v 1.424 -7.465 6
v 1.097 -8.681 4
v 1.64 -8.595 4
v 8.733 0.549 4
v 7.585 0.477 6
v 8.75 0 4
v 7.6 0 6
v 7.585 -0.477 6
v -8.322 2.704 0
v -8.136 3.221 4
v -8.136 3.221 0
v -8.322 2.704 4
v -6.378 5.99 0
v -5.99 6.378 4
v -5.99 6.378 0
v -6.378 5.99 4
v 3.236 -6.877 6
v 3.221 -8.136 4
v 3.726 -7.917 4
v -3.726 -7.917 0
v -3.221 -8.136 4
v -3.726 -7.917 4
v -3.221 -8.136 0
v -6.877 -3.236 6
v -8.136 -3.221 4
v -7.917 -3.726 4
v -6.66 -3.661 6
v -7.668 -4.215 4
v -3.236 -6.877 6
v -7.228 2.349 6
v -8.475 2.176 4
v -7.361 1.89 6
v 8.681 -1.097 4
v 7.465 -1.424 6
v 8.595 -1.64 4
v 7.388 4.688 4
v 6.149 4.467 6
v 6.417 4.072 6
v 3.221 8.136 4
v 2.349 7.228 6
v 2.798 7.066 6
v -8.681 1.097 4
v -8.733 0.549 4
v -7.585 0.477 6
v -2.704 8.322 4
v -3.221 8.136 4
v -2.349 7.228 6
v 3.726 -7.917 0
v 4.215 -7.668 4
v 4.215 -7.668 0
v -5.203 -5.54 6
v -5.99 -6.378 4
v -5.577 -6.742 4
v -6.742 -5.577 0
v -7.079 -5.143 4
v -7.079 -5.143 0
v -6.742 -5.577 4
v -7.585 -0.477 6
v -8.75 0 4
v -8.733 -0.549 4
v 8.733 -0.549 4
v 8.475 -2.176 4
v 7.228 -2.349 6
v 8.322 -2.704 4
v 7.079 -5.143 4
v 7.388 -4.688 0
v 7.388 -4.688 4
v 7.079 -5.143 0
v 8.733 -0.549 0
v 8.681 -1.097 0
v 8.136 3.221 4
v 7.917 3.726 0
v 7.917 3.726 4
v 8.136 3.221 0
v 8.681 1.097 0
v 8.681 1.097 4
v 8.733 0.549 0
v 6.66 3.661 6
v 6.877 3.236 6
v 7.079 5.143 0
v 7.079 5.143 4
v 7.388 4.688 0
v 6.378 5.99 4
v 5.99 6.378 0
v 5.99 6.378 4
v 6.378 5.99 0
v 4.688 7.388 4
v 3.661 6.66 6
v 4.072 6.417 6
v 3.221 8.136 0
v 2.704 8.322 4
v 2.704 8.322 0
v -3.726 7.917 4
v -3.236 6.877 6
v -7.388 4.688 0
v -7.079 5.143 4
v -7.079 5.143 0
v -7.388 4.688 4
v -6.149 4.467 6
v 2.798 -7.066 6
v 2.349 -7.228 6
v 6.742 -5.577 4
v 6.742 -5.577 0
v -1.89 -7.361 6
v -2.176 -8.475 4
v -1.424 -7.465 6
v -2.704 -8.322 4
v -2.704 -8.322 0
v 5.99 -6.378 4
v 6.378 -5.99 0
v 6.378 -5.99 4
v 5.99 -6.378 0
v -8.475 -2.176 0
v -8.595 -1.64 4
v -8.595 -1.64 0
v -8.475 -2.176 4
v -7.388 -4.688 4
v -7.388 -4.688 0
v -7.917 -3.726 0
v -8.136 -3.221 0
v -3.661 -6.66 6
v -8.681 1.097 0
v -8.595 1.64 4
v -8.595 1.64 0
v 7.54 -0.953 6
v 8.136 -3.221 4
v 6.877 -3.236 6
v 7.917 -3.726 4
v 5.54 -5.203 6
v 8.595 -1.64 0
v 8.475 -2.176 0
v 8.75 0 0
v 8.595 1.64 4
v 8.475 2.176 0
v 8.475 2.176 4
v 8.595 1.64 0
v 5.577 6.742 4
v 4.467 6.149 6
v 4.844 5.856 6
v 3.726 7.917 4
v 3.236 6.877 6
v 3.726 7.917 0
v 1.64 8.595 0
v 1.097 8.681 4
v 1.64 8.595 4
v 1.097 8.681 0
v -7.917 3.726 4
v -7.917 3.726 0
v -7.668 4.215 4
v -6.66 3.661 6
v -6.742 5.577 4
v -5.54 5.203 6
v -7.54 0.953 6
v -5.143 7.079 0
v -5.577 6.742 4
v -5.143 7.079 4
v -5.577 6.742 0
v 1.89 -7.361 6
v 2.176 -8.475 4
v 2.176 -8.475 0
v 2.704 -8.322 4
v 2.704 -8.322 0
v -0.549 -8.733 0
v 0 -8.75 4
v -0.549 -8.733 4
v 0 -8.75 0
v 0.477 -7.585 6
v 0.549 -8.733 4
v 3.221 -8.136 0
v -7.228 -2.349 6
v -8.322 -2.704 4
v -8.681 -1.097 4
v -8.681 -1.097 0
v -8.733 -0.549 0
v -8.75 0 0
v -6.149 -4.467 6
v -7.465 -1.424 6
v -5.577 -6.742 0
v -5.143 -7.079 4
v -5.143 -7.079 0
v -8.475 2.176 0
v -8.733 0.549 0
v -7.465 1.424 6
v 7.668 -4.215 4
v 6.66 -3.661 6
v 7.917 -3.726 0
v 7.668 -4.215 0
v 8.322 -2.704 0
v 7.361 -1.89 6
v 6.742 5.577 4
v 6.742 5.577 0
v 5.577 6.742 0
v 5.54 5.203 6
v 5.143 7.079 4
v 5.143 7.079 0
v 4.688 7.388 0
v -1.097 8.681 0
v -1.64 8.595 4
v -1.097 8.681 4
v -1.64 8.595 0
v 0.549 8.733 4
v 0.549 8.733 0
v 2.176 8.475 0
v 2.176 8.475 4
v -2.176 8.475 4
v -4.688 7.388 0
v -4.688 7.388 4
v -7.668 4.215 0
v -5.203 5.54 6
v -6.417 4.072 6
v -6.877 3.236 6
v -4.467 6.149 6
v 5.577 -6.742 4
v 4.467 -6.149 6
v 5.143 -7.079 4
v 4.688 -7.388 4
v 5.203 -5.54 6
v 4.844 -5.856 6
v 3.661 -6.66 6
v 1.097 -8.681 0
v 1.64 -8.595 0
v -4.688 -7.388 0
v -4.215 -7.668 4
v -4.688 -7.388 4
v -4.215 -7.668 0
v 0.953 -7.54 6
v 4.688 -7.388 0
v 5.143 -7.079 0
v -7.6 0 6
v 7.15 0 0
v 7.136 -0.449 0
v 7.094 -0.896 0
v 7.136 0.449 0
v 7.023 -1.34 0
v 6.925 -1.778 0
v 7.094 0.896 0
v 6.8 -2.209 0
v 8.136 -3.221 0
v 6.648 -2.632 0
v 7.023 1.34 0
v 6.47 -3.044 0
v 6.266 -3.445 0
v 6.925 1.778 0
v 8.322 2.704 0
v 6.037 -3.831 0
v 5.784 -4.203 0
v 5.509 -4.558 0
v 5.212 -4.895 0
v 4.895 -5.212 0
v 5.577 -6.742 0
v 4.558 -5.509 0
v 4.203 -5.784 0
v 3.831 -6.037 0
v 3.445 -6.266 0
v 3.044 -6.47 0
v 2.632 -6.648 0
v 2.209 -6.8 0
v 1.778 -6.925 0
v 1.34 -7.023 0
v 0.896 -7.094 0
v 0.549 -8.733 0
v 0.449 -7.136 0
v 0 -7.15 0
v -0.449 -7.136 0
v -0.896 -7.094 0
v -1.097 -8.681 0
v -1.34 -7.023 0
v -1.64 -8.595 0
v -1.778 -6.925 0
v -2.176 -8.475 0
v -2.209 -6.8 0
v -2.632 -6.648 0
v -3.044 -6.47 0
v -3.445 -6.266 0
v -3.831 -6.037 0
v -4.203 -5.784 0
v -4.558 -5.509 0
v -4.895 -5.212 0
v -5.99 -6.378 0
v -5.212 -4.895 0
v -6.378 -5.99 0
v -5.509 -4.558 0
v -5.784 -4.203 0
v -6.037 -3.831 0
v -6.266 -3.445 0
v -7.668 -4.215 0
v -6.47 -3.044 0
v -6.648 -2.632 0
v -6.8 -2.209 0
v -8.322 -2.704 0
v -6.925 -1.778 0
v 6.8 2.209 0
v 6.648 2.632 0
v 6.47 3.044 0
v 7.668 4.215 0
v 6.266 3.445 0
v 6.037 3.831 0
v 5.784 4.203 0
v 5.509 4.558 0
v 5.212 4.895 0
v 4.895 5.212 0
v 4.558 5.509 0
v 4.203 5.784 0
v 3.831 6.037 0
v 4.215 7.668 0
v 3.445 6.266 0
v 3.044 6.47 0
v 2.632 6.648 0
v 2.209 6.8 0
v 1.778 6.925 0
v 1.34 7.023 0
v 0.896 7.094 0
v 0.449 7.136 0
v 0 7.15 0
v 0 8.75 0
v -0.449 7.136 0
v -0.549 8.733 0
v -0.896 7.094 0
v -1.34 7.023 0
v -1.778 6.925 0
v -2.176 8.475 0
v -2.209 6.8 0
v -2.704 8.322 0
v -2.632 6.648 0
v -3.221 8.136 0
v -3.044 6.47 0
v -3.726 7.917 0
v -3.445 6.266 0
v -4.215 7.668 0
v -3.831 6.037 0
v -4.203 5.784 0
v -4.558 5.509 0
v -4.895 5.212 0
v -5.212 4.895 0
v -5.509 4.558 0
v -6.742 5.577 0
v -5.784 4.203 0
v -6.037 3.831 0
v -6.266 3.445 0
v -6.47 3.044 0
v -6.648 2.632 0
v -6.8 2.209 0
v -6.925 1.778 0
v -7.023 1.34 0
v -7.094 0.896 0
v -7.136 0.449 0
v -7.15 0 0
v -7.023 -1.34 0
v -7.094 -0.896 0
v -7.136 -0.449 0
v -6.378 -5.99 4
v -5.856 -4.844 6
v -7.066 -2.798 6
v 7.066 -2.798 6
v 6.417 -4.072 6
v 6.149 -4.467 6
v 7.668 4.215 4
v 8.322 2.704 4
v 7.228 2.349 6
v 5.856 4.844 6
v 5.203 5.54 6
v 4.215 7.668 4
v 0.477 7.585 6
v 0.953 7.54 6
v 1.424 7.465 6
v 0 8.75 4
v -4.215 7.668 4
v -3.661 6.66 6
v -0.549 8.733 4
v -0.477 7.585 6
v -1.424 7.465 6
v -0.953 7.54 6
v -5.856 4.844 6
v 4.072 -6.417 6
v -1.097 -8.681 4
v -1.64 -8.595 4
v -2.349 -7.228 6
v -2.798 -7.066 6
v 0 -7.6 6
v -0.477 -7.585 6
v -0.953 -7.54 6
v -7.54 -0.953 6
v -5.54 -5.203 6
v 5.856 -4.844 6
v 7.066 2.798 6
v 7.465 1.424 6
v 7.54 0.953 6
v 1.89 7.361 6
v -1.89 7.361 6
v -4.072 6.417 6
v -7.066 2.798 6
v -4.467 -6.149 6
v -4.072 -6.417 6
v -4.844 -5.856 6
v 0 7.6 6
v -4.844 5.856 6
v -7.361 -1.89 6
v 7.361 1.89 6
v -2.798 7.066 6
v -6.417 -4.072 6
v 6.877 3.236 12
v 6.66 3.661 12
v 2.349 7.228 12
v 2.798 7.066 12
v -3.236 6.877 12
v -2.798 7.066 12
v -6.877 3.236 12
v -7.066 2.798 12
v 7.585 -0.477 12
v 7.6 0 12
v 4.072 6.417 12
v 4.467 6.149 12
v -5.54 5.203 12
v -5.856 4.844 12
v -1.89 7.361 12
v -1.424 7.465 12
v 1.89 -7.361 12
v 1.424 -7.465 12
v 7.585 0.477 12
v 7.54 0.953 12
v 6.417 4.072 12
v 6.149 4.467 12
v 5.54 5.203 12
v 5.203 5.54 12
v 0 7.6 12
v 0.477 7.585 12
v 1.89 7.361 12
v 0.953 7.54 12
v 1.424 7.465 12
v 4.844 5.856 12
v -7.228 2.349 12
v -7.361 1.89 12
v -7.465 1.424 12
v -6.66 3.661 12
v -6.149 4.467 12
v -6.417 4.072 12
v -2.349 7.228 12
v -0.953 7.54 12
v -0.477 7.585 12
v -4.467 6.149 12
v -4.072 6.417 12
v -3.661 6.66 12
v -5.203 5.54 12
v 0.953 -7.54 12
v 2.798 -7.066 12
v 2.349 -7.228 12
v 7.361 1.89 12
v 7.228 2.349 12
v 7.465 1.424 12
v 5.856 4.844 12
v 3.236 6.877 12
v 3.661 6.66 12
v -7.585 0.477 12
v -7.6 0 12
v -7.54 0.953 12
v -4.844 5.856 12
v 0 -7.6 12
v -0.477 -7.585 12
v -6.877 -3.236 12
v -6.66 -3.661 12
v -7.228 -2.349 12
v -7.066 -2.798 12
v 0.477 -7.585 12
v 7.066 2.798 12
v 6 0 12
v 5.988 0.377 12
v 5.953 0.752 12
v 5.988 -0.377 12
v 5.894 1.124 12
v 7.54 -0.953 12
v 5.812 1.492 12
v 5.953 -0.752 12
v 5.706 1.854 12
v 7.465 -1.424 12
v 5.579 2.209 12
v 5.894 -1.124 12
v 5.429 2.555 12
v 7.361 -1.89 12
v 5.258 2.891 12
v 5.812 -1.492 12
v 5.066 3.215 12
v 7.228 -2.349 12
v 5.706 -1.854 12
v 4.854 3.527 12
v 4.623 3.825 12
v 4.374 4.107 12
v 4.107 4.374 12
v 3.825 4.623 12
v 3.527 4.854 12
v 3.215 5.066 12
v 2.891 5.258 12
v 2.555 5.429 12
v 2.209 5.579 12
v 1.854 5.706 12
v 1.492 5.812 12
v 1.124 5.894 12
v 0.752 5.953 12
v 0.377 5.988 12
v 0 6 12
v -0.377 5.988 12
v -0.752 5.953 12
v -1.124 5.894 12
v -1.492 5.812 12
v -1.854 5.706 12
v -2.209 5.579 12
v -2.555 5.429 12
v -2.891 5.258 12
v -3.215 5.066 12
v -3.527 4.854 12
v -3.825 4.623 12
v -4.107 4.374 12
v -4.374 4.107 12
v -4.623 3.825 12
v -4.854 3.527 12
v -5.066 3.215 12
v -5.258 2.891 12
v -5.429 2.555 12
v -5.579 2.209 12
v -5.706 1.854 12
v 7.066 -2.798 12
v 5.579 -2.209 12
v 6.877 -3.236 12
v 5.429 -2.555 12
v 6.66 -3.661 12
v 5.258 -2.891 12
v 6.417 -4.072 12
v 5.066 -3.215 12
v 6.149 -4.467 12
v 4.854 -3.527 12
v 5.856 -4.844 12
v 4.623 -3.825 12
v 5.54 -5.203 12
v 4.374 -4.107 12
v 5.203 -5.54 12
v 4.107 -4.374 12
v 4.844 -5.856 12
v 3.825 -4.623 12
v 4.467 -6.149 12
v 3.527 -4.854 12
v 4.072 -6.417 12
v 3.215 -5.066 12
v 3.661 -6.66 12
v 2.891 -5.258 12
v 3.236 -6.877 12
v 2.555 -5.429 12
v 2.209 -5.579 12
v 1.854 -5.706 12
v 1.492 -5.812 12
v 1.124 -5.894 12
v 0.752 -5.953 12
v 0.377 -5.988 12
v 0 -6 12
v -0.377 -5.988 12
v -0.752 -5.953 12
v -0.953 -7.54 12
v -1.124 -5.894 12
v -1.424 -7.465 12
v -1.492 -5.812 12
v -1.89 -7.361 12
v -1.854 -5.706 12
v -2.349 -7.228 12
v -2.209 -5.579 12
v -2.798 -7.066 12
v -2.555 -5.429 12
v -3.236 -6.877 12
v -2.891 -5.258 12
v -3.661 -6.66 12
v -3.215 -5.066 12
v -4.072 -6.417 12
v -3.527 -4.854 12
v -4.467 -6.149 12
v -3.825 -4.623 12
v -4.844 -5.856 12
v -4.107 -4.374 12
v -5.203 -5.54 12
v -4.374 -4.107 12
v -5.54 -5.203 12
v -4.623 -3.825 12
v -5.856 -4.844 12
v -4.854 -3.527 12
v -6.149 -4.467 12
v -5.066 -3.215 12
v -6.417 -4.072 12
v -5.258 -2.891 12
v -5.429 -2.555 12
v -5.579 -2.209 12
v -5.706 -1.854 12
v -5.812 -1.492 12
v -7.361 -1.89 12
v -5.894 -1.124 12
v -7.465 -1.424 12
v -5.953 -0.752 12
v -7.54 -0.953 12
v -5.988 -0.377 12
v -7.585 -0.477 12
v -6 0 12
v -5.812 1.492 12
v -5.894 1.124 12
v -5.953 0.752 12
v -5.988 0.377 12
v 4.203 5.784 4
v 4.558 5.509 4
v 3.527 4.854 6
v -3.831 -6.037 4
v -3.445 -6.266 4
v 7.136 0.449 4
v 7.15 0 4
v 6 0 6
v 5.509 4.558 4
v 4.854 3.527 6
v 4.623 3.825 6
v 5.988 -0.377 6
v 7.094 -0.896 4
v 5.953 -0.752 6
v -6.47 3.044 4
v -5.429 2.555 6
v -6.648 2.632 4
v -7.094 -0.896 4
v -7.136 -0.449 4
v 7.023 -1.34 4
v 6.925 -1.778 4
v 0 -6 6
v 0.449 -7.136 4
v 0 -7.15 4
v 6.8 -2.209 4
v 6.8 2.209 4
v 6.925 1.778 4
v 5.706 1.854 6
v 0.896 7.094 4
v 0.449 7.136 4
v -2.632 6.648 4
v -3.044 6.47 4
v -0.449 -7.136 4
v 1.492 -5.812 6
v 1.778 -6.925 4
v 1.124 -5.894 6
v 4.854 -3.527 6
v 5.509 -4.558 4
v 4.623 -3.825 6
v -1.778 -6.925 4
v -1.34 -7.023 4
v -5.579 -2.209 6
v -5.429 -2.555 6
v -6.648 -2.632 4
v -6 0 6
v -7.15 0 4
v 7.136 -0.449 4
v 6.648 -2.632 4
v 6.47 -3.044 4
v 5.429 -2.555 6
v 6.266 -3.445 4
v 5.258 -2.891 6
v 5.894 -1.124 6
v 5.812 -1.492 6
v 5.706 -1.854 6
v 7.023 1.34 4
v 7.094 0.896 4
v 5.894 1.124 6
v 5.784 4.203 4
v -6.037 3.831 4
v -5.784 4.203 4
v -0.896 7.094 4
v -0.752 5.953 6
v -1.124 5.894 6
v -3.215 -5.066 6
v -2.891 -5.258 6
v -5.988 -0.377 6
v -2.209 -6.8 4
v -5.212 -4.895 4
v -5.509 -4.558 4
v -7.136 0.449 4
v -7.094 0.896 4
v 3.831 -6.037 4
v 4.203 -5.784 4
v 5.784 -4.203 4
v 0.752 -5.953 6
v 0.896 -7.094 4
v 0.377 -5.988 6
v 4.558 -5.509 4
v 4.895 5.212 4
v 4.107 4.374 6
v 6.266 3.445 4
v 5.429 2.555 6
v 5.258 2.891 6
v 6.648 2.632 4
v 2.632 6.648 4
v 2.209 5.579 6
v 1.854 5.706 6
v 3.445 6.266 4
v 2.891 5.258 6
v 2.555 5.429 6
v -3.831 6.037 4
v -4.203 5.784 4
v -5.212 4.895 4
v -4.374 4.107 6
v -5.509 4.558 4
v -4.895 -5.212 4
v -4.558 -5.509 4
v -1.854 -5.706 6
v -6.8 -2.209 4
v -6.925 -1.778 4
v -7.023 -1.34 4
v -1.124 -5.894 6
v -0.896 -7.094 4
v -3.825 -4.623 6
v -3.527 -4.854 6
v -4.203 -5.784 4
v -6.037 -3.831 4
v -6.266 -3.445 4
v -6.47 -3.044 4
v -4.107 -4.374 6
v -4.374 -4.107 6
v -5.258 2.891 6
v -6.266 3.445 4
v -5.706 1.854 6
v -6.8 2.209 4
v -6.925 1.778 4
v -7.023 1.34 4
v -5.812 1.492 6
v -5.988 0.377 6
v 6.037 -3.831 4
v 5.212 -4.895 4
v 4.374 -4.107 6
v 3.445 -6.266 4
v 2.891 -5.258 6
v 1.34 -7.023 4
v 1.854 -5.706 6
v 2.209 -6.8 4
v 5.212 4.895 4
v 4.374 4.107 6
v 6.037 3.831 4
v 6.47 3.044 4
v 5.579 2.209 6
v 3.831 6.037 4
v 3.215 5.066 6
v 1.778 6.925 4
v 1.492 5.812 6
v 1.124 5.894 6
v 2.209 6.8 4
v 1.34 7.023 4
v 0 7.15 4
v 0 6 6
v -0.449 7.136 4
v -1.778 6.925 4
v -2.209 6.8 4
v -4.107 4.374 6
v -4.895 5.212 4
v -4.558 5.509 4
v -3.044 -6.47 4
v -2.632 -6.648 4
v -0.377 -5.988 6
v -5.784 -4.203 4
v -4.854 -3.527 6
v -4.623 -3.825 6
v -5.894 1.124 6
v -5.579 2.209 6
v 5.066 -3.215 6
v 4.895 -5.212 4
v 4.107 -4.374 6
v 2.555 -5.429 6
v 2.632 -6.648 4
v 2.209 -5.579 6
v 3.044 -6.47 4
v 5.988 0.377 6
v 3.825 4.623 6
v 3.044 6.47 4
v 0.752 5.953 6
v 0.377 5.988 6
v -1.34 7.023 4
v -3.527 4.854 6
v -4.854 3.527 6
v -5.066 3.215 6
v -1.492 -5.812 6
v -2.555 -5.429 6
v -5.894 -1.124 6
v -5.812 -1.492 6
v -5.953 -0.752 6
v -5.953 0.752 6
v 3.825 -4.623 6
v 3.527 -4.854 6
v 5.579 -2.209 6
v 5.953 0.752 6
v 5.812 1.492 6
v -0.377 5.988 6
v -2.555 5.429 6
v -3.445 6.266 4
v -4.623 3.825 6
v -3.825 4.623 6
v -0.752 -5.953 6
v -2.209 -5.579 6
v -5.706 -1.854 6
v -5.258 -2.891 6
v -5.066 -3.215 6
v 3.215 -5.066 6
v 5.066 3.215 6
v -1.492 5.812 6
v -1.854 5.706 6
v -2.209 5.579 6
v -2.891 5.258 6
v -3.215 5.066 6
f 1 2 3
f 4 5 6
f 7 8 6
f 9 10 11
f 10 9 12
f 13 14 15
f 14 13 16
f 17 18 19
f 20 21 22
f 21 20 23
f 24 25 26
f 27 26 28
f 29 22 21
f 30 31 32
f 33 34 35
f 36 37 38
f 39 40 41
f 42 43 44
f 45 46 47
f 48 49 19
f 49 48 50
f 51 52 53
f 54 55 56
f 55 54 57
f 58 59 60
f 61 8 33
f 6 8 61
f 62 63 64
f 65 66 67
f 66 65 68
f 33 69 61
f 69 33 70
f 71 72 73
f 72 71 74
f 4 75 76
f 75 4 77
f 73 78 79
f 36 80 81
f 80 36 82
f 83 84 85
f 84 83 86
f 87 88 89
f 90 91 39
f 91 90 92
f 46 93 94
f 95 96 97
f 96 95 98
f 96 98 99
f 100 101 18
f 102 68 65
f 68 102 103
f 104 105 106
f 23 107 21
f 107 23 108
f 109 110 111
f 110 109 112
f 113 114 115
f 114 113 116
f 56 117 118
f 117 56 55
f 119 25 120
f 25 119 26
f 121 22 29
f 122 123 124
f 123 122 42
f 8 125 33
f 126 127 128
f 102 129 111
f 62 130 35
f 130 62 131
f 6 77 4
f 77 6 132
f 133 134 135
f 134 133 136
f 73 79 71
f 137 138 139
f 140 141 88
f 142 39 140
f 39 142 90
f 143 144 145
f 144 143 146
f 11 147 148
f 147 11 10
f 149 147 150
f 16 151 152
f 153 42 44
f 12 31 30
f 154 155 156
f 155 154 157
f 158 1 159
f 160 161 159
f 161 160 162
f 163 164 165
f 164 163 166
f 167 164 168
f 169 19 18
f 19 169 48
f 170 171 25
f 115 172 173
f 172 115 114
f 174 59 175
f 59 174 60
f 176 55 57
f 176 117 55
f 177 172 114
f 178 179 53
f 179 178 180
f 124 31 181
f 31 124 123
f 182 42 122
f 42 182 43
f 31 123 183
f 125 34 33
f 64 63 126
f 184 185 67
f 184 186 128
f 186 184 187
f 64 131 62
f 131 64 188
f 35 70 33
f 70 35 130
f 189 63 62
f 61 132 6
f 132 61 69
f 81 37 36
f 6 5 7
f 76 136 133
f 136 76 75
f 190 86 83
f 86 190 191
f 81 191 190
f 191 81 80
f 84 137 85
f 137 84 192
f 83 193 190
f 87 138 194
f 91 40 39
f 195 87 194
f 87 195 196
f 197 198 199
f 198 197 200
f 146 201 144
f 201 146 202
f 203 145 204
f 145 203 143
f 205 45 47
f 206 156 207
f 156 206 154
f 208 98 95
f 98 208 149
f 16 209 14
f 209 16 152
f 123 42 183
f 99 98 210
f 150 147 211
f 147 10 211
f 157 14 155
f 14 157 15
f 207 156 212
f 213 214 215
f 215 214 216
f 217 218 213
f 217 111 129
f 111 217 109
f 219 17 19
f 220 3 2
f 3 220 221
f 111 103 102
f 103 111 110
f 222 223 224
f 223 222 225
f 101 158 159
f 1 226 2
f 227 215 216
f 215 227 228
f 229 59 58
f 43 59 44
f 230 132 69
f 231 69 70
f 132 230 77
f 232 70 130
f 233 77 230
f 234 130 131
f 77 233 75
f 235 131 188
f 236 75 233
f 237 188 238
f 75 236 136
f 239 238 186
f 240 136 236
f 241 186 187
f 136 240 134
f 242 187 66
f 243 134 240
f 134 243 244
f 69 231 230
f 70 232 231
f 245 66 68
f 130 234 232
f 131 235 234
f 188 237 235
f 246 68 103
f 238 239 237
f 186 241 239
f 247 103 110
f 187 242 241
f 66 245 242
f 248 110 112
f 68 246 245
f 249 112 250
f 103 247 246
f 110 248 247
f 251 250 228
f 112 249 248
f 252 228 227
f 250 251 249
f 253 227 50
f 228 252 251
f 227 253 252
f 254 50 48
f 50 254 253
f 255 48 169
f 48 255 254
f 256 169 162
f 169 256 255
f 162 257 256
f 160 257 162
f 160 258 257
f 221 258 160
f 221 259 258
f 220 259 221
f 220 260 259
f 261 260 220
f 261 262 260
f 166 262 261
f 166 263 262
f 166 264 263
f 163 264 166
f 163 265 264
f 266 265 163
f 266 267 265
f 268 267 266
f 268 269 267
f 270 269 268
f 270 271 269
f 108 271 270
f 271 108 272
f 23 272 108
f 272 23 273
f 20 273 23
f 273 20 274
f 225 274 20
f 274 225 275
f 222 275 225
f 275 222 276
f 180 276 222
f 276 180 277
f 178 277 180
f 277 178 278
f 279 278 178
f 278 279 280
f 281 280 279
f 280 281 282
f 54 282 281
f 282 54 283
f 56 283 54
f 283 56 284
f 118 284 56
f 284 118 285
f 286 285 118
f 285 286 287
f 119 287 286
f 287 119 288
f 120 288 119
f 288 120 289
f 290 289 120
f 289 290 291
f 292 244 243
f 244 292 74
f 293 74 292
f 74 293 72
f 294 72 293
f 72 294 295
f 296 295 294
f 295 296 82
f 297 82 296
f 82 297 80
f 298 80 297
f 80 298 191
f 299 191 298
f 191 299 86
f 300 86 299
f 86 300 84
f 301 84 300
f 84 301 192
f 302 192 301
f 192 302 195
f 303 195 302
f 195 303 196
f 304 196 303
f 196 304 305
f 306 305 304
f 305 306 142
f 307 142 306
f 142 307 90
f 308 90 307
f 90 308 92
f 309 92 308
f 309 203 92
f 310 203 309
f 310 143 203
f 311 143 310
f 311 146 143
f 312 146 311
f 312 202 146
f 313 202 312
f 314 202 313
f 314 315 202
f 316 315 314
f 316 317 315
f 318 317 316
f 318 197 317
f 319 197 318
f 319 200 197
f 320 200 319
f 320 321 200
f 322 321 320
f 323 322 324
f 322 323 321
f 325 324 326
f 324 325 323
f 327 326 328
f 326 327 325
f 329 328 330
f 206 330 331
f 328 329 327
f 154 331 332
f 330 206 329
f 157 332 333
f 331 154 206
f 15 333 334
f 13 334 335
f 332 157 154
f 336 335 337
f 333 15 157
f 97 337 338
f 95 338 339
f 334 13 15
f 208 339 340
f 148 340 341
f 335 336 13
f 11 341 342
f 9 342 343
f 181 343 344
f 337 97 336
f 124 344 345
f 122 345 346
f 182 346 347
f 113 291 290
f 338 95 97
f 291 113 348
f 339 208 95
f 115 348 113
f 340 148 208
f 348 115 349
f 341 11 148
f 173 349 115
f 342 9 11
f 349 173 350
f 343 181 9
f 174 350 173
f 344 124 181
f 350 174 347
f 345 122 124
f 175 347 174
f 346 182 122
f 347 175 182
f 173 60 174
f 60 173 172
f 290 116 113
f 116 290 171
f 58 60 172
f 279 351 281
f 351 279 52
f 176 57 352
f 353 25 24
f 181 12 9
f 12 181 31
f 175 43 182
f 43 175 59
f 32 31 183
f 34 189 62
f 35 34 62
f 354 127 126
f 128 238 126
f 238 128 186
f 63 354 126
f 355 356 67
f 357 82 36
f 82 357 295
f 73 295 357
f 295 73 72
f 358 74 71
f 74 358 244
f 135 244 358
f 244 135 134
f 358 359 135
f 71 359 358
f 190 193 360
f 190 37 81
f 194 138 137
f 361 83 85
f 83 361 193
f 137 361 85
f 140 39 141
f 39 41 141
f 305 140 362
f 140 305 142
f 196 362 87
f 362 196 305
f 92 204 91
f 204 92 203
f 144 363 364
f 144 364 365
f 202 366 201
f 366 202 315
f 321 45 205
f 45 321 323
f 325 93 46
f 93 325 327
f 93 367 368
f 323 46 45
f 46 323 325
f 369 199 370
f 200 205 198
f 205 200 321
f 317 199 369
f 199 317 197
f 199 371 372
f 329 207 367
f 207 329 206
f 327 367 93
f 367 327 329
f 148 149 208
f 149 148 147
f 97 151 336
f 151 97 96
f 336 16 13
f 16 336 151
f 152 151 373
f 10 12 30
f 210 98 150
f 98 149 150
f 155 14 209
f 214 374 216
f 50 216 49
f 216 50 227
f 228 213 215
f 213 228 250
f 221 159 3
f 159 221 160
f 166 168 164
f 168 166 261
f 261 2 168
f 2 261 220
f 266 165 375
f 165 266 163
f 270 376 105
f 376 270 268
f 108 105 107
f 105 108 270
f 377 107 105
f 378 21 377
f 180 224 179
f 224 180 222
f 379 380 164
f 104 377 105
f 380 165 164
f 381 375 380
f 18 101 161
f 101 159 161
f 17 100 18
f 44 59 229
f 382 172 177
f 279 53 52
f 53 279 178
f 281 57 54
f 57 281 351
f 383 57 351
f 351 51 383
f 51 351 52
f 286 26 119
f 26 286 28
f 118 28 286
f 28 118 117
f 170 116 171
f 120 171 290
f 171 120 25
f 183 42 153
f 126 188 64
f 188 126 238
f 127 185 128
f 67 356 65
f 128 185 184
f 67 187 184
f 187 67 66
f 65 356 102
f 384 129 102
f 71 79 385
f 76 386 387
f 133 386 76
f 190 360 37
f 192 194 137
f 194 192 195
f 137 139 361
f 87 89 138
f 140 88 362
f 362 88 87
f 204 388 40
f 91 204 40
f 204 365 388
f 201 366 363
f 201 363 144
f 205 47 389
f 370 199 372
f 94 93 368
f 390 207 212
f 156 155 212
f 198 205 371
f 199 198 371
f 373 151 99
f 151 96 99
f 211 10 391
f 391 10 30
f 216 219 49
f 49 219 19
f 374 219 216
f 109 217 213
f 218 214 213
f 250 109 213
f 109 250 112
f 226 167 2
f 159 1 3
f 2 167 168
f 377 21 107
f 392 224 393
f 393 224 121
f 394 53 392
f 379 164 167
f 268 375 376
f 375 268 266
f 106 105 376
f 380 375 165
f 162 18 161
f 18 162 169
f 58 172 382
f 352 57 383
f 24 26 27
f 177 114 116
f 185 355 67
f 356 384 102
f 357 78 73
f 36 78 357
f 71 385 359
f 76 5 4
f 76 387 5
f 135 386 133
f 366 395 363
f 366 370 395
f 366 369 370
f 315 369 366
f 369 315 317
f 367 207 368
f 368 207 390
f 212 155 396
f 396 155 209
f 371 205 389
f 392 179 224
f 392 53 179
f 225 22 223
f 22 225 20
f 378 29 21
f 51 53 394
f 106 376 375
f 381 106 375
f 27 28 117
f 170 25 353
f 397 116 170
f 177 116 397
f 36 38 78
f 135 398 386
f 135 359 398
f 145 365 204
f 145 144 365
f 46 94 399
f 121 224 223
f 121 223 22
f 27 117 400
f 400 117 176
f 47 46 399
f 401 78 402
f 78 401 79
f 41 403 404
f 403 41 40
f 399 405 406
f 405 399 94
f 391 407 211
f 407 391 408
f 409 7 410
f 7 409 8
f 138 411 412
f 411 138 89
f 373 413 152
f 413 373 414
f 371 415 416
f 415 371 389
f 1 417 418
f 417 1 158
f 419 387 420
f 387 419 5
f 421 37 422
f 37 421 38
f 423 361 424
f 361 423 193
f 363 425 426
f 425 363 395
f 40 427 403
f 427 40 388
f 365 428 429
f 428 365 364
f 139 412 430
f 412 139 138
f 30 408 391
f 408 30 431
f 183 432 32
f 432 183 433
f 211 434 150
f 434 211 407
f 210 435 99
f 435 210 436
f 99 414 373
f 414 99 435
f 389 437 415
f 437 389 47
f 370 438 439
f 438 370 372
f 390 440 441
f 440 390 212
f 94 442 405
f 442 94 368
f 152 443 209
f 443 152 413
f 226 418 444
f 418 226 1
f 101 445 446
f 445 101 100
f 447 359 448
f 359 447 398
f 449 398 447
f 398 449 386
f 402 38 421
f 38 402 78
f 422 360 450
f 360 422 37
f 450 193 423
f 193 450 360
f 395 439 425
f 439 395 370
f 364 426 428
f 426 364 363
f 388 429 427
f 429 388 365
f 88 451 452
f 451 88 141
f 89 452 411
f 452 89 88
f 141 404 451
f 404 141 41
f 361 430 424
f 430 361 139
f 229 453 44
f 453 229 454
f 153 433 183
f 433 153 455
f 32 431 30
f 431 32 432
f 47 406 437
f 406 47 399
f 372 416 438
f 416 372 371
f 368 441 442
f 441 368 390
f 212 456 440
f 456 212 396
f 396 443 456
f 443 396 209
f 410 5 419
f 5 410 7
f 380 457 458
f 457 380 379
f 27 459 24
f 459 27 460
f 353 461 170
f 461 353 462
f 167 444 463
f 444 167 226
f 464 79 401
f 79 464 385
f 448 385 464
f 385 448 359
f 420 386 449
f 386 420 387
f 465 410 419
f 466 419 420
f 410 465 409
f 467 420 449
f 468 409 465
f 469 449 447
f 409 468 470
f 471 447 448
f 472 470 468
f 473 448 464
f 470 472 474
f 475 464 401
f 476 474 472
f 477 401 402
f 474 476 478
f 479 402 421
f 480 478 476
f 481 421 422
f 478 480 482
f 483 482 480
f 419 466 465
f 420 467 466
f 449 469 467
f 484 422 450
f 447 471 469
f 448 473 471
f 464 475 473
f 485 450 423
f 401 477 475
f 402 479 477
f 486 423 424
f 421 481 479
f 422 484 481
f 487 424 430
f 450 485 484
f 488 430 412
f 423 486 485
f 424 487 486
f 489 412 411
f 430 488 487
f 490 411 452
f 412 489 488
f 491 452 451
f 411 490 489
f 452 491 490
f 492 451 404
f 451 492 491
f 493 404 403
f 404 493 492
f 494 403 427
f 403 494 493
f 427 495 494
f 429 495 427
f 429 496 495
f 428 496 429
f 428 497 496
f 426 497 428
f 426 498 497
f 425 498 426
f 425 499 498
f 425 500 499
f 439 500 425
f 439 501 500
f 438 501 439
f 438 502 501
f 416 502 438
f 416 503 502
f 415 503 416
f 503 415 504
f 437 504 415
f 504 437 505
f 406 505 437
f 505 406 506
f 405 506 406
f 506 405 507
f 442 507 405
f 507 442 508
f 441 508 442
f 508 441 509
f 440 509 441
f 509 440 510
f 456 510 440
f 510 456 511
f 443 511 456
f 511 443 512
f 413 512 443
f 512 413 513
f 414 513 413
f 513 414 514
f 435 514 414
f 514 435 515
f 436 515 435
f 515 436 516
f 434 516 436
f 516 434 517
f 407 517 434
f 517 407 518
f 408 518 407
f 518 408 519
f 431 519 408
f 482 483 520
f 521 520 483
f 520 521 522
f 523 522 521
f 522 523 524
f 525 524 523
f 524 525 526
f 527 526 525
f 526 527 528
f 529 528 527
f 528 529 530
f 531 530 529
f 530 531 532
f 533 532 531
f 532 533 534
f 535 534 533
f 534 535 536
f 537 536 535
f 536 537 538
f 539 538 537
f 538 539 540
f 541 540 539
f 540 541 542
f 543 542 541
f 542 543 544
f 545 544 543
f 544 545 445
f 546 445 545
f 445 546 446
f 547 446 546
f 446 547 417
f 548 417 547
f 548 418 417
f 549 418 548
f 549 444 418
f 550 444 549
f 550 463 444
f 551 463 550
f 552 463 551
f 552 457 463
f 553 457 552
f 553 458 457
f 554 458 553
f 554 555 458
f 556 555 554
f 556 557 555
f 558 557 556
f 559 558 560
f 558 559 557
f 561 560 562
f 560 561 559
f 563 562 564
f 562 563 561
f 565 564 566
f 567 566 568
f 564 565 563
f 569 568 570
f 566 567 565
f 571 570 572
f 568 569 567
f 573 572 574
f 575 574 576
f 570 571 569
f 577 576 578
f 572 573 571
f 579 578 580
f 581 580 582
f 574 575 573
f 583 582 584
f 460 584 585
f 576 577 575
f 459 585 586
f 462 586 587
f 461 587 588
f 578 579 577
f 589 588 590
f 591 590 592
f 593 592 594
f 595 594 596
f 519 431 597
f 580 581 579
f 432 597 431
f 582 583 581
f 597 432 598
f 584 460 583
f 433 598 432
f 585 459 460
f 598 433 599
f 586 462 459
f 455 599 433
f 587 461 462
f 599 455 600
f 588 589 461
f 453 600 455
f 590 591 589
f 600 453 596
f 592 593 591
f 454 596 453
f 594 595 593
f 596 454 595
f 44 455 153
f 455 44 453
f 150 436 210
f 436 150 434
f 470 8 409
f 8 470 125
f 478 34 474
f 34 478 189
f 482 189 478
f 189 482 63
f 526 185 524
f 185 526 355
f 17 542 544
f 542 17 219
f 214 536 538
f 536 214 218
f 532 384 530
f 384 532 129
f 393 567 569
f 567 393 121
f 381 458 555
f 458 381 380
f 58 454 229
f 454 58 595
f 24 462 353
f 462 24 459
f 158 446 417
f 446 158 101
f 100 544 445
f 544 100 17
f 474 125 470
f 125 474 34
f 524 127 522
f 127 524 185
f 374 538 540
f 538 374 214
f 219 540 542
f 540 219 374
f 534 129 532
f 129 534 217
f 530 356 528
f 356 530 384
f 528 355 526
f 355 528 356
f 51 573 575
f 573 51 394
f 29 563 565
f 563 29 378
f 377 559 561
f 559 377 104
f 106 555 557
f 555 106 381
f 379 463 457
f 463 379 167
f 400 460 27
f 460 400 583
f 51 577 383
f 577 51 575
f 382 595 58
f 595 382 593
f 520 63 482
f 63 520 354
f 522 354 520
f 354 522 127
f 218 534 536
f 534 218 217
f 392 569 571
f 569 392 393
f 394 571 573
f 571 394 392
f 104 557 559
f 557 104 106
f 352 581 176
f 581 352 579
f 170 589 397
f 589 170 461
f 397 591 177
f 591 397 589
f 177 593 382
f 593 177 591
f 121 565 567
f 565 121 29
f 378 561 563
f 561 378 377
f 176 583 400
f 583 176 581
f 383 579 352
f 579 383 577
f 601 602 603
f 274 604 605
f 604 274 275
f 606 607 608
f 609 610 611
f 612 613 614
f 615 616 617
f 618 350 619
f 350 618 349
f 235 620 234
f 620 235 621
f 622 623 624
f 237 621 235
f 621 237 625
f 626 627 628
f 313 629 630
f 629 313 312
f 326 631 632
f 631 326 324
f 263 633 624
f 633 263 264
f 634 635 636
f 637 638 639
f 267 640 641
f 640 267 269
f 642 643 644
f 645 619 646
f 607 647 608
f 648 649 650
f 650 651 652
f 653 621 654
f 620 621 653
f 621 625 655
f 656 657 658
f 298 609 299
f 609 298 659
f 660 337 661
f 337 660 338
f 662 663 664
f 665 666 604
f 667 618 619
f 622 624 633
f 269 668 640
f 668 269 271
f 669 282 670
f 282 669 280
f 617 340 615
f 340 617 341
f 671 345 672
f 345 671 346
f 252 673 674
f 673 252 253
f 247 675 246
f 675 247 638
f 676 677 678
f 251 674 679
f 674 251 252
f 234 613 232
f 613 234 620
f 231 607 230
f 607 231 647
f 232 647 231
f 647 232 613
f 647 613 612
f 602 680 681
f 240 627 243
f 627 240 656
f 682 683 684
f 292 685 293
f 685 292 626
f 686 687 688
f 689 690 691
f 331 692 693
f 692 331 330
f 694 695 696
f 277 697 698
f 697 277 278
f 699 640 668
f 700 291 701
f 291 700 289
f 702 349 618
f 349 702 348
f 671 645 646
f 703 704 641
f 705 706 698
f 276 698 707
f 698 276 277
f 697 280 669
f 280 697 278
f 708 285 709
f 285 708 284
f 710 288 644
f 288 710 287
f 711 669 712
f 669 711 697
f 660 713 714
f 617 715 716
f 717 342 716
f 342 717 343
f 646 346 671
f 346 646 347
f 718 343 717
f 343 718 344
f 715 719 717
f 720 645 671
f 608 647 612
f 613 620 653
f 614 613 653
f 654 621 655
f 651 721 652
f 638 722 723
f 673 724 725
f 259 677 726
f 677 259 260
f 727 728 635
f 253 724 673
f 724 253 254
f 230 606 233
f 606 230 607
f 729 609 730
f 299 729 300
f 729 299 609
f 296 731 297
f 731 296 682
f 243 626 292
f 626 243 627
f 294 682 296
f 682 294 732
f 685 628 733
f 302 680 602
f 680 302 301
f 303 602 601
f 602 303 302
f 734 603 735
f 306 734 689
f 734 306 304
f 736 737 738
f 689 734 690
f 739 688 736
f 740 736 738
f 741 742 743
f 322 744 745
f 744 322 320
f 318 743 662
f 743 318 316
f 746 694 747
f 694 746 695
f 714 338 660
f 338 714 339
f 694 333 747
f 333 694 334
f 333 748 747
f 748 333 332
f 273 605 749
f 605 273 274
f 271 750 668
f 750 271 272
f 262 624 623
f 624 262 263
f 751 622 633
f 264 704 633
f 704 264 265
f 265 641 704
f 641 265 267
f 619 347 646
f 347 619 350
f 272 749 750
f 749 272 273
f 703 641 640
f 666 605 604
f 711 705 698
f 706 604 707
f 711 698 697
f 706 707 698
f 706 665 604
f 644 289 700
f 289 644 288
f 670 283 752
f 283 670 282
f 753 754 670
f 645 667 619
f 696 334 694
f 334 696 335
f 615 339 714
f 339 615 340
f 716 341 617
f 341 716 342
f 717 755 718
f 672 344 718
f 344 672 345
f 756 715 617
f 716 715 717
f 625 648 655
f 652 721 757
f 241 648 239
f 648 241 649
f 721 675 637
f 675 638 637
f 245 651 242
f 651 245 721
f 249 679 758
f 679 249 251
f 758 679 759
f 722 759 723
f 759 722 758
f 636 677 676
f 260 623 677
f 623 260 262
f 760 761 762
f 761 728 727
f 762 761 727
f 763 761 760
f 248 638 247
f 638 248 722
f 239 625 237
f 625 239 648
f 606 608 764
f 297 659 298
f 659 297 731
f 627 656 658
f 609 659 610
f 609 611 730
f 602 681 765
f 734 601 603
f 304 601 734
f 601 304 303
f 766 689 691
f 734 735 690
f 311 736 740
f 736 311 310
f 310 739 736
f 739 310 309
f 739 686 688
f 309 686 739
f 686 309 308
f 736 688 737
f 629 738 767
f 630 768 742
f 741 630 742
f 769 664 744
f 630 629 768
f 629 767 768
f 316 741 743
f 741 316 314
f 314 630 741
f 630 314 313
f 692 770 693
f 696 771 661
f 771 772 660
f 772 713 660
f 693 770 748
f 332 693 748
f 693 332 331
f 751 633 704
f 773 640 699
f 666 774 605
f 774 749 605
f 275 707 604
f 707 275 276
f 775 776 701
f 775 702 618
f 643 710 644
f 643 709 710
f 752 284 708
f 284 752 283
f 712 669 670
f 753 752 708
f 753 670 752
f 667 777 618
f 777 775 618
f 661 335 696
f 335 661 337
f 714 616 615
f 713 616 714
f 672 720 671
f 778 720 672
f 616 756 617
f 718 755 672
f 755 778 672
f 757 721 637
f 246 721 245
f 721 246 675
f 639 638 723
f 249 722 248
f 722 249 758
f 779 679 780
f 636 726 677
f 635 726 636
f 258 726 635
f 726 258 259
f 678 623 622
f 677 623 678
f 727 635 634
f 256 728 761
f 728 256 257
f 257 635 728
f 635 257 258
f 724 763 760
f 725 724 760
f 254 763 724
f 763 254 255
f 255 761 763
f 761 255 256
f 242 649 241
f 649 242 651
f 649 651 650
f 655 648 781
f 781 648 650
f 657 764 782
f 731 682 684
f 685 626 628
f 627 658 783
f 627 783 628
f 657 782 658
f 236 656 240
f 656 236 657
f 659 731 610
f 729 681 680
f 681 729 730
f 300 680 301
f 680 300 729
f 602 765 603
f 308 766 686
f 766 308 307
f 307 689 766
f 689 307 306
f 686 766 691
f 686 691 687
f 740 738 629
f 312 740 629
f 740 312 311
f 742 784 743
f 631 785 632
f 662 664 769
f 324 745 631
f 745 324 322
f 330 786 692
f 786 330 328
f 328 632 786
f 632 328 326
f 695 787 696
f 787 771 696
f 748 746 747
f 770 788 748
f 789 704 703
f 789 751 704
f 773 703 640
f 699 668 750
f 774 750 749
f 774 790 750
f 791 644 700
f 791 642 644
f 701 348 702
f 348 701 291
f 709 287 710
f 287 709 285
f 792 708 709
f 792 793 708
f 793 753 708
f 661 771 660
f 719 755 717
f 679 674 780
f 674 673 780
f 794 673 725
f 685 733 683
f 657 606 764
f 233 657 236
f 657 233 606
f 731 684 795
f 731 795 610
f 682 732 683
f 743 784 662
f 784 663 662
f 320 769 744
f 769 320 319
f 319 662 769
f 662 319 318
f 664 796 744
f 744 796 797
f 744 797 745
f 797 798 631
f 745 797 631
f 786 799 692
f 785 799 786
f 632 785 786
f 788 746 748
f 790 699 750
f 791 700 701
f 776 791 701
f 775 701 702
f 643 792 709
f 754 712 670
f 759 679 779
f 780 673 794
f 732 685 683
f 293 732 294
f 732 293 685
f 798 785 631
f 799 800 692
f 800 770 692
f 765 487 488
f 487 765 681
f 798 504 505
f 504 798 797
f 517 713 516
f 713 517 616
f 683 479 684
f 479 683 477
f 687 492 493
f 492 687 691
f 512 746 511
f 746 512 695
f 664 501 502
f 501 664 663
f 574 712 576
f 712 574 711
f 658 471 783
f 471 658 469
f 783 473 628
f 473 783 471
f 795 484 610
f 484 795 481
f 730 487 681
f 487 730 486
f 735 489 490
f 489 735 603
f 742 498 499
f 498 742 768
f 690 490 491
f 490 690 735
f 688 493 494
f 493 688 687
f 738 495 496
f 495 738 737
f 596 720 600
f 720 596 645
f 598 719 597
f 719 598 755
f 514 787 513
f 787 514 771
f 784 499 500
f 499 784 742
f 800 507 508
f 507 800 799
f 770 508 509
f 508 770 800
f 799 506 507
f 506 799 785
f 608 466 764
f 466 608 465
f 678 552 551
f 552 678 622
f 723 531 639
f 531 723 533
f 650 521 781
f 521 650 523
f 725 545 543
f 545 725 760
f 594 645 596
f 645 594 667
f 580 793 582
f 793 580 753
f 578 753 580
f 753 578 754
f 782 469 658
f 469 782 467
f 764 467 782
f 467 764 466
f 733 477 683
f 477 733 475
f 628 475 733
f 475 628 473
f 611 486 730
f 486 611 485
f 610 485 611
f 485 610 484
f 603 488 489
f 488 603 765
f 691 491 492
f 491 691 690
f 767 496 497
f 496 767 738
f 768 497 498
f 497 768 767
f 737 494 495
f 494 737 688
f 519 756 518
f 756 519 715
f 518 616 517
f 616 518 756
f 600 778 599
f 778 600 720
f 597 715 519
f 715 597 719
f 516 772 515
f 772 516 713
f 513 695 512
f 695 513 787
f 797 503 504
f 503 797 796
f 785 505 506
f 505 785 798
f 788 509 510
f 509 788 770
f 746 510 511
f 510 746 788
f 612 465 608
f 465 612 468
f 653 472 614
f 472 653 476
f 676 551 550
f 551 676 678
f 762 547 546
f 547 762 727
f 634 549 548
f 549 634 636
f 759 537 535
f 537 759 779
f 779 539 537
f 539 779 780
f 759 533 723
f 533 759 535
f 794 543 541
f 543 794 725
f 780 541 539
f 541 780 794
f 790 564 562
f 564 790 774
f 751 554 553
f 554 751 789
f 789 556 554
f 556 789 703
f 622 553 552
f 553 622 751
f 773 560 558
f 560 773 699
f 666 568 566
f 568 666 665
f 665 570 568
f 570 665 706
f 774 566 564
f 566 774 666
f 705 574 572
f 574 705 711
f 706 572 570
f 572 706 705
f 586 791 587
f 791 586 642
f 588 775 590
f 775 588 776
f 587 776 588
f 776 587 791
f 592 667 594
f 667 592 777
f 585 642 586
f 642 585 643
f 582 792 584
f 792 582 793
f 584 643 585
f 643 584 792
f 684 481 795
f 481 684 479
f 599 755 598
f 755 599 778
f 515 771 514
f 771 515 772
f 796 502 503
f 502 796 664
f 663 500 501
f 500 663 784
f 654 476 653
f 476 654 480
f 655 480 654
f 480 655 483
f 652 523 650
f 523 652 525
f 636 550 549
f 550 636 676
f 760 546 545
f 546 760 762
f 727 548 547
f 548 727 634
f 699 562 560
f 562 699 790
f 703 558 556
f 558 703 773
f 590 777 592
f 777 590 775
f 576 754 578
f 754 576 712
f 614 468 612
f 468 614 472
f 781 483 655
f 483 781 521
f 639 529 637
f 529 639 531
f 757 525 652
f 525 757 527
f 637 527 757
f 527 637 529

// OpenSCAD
$fn = 100;

r1 = 14.3 / 2;
r2 = 12 / 2;

t = 1.6;
h = 6;

difference()
{
    union()
    {
        hull()
        {
            cylinder(4, r1 + t, r1 + t);
            translate([0, 0, 4]) cylinder(2, r2 + t, r2 + t);
        }
        translate([0, 0, 6]) cylinder(h, r2 + t, r2 + t);
    }
    hull()
    {
        cylinder(4, r1, r1);
        translate([0, 0, 4]) cylinder(2, r2, r2);
    }
    translate([0, 0, 6]) cylinder(h, r2, r2);
}
